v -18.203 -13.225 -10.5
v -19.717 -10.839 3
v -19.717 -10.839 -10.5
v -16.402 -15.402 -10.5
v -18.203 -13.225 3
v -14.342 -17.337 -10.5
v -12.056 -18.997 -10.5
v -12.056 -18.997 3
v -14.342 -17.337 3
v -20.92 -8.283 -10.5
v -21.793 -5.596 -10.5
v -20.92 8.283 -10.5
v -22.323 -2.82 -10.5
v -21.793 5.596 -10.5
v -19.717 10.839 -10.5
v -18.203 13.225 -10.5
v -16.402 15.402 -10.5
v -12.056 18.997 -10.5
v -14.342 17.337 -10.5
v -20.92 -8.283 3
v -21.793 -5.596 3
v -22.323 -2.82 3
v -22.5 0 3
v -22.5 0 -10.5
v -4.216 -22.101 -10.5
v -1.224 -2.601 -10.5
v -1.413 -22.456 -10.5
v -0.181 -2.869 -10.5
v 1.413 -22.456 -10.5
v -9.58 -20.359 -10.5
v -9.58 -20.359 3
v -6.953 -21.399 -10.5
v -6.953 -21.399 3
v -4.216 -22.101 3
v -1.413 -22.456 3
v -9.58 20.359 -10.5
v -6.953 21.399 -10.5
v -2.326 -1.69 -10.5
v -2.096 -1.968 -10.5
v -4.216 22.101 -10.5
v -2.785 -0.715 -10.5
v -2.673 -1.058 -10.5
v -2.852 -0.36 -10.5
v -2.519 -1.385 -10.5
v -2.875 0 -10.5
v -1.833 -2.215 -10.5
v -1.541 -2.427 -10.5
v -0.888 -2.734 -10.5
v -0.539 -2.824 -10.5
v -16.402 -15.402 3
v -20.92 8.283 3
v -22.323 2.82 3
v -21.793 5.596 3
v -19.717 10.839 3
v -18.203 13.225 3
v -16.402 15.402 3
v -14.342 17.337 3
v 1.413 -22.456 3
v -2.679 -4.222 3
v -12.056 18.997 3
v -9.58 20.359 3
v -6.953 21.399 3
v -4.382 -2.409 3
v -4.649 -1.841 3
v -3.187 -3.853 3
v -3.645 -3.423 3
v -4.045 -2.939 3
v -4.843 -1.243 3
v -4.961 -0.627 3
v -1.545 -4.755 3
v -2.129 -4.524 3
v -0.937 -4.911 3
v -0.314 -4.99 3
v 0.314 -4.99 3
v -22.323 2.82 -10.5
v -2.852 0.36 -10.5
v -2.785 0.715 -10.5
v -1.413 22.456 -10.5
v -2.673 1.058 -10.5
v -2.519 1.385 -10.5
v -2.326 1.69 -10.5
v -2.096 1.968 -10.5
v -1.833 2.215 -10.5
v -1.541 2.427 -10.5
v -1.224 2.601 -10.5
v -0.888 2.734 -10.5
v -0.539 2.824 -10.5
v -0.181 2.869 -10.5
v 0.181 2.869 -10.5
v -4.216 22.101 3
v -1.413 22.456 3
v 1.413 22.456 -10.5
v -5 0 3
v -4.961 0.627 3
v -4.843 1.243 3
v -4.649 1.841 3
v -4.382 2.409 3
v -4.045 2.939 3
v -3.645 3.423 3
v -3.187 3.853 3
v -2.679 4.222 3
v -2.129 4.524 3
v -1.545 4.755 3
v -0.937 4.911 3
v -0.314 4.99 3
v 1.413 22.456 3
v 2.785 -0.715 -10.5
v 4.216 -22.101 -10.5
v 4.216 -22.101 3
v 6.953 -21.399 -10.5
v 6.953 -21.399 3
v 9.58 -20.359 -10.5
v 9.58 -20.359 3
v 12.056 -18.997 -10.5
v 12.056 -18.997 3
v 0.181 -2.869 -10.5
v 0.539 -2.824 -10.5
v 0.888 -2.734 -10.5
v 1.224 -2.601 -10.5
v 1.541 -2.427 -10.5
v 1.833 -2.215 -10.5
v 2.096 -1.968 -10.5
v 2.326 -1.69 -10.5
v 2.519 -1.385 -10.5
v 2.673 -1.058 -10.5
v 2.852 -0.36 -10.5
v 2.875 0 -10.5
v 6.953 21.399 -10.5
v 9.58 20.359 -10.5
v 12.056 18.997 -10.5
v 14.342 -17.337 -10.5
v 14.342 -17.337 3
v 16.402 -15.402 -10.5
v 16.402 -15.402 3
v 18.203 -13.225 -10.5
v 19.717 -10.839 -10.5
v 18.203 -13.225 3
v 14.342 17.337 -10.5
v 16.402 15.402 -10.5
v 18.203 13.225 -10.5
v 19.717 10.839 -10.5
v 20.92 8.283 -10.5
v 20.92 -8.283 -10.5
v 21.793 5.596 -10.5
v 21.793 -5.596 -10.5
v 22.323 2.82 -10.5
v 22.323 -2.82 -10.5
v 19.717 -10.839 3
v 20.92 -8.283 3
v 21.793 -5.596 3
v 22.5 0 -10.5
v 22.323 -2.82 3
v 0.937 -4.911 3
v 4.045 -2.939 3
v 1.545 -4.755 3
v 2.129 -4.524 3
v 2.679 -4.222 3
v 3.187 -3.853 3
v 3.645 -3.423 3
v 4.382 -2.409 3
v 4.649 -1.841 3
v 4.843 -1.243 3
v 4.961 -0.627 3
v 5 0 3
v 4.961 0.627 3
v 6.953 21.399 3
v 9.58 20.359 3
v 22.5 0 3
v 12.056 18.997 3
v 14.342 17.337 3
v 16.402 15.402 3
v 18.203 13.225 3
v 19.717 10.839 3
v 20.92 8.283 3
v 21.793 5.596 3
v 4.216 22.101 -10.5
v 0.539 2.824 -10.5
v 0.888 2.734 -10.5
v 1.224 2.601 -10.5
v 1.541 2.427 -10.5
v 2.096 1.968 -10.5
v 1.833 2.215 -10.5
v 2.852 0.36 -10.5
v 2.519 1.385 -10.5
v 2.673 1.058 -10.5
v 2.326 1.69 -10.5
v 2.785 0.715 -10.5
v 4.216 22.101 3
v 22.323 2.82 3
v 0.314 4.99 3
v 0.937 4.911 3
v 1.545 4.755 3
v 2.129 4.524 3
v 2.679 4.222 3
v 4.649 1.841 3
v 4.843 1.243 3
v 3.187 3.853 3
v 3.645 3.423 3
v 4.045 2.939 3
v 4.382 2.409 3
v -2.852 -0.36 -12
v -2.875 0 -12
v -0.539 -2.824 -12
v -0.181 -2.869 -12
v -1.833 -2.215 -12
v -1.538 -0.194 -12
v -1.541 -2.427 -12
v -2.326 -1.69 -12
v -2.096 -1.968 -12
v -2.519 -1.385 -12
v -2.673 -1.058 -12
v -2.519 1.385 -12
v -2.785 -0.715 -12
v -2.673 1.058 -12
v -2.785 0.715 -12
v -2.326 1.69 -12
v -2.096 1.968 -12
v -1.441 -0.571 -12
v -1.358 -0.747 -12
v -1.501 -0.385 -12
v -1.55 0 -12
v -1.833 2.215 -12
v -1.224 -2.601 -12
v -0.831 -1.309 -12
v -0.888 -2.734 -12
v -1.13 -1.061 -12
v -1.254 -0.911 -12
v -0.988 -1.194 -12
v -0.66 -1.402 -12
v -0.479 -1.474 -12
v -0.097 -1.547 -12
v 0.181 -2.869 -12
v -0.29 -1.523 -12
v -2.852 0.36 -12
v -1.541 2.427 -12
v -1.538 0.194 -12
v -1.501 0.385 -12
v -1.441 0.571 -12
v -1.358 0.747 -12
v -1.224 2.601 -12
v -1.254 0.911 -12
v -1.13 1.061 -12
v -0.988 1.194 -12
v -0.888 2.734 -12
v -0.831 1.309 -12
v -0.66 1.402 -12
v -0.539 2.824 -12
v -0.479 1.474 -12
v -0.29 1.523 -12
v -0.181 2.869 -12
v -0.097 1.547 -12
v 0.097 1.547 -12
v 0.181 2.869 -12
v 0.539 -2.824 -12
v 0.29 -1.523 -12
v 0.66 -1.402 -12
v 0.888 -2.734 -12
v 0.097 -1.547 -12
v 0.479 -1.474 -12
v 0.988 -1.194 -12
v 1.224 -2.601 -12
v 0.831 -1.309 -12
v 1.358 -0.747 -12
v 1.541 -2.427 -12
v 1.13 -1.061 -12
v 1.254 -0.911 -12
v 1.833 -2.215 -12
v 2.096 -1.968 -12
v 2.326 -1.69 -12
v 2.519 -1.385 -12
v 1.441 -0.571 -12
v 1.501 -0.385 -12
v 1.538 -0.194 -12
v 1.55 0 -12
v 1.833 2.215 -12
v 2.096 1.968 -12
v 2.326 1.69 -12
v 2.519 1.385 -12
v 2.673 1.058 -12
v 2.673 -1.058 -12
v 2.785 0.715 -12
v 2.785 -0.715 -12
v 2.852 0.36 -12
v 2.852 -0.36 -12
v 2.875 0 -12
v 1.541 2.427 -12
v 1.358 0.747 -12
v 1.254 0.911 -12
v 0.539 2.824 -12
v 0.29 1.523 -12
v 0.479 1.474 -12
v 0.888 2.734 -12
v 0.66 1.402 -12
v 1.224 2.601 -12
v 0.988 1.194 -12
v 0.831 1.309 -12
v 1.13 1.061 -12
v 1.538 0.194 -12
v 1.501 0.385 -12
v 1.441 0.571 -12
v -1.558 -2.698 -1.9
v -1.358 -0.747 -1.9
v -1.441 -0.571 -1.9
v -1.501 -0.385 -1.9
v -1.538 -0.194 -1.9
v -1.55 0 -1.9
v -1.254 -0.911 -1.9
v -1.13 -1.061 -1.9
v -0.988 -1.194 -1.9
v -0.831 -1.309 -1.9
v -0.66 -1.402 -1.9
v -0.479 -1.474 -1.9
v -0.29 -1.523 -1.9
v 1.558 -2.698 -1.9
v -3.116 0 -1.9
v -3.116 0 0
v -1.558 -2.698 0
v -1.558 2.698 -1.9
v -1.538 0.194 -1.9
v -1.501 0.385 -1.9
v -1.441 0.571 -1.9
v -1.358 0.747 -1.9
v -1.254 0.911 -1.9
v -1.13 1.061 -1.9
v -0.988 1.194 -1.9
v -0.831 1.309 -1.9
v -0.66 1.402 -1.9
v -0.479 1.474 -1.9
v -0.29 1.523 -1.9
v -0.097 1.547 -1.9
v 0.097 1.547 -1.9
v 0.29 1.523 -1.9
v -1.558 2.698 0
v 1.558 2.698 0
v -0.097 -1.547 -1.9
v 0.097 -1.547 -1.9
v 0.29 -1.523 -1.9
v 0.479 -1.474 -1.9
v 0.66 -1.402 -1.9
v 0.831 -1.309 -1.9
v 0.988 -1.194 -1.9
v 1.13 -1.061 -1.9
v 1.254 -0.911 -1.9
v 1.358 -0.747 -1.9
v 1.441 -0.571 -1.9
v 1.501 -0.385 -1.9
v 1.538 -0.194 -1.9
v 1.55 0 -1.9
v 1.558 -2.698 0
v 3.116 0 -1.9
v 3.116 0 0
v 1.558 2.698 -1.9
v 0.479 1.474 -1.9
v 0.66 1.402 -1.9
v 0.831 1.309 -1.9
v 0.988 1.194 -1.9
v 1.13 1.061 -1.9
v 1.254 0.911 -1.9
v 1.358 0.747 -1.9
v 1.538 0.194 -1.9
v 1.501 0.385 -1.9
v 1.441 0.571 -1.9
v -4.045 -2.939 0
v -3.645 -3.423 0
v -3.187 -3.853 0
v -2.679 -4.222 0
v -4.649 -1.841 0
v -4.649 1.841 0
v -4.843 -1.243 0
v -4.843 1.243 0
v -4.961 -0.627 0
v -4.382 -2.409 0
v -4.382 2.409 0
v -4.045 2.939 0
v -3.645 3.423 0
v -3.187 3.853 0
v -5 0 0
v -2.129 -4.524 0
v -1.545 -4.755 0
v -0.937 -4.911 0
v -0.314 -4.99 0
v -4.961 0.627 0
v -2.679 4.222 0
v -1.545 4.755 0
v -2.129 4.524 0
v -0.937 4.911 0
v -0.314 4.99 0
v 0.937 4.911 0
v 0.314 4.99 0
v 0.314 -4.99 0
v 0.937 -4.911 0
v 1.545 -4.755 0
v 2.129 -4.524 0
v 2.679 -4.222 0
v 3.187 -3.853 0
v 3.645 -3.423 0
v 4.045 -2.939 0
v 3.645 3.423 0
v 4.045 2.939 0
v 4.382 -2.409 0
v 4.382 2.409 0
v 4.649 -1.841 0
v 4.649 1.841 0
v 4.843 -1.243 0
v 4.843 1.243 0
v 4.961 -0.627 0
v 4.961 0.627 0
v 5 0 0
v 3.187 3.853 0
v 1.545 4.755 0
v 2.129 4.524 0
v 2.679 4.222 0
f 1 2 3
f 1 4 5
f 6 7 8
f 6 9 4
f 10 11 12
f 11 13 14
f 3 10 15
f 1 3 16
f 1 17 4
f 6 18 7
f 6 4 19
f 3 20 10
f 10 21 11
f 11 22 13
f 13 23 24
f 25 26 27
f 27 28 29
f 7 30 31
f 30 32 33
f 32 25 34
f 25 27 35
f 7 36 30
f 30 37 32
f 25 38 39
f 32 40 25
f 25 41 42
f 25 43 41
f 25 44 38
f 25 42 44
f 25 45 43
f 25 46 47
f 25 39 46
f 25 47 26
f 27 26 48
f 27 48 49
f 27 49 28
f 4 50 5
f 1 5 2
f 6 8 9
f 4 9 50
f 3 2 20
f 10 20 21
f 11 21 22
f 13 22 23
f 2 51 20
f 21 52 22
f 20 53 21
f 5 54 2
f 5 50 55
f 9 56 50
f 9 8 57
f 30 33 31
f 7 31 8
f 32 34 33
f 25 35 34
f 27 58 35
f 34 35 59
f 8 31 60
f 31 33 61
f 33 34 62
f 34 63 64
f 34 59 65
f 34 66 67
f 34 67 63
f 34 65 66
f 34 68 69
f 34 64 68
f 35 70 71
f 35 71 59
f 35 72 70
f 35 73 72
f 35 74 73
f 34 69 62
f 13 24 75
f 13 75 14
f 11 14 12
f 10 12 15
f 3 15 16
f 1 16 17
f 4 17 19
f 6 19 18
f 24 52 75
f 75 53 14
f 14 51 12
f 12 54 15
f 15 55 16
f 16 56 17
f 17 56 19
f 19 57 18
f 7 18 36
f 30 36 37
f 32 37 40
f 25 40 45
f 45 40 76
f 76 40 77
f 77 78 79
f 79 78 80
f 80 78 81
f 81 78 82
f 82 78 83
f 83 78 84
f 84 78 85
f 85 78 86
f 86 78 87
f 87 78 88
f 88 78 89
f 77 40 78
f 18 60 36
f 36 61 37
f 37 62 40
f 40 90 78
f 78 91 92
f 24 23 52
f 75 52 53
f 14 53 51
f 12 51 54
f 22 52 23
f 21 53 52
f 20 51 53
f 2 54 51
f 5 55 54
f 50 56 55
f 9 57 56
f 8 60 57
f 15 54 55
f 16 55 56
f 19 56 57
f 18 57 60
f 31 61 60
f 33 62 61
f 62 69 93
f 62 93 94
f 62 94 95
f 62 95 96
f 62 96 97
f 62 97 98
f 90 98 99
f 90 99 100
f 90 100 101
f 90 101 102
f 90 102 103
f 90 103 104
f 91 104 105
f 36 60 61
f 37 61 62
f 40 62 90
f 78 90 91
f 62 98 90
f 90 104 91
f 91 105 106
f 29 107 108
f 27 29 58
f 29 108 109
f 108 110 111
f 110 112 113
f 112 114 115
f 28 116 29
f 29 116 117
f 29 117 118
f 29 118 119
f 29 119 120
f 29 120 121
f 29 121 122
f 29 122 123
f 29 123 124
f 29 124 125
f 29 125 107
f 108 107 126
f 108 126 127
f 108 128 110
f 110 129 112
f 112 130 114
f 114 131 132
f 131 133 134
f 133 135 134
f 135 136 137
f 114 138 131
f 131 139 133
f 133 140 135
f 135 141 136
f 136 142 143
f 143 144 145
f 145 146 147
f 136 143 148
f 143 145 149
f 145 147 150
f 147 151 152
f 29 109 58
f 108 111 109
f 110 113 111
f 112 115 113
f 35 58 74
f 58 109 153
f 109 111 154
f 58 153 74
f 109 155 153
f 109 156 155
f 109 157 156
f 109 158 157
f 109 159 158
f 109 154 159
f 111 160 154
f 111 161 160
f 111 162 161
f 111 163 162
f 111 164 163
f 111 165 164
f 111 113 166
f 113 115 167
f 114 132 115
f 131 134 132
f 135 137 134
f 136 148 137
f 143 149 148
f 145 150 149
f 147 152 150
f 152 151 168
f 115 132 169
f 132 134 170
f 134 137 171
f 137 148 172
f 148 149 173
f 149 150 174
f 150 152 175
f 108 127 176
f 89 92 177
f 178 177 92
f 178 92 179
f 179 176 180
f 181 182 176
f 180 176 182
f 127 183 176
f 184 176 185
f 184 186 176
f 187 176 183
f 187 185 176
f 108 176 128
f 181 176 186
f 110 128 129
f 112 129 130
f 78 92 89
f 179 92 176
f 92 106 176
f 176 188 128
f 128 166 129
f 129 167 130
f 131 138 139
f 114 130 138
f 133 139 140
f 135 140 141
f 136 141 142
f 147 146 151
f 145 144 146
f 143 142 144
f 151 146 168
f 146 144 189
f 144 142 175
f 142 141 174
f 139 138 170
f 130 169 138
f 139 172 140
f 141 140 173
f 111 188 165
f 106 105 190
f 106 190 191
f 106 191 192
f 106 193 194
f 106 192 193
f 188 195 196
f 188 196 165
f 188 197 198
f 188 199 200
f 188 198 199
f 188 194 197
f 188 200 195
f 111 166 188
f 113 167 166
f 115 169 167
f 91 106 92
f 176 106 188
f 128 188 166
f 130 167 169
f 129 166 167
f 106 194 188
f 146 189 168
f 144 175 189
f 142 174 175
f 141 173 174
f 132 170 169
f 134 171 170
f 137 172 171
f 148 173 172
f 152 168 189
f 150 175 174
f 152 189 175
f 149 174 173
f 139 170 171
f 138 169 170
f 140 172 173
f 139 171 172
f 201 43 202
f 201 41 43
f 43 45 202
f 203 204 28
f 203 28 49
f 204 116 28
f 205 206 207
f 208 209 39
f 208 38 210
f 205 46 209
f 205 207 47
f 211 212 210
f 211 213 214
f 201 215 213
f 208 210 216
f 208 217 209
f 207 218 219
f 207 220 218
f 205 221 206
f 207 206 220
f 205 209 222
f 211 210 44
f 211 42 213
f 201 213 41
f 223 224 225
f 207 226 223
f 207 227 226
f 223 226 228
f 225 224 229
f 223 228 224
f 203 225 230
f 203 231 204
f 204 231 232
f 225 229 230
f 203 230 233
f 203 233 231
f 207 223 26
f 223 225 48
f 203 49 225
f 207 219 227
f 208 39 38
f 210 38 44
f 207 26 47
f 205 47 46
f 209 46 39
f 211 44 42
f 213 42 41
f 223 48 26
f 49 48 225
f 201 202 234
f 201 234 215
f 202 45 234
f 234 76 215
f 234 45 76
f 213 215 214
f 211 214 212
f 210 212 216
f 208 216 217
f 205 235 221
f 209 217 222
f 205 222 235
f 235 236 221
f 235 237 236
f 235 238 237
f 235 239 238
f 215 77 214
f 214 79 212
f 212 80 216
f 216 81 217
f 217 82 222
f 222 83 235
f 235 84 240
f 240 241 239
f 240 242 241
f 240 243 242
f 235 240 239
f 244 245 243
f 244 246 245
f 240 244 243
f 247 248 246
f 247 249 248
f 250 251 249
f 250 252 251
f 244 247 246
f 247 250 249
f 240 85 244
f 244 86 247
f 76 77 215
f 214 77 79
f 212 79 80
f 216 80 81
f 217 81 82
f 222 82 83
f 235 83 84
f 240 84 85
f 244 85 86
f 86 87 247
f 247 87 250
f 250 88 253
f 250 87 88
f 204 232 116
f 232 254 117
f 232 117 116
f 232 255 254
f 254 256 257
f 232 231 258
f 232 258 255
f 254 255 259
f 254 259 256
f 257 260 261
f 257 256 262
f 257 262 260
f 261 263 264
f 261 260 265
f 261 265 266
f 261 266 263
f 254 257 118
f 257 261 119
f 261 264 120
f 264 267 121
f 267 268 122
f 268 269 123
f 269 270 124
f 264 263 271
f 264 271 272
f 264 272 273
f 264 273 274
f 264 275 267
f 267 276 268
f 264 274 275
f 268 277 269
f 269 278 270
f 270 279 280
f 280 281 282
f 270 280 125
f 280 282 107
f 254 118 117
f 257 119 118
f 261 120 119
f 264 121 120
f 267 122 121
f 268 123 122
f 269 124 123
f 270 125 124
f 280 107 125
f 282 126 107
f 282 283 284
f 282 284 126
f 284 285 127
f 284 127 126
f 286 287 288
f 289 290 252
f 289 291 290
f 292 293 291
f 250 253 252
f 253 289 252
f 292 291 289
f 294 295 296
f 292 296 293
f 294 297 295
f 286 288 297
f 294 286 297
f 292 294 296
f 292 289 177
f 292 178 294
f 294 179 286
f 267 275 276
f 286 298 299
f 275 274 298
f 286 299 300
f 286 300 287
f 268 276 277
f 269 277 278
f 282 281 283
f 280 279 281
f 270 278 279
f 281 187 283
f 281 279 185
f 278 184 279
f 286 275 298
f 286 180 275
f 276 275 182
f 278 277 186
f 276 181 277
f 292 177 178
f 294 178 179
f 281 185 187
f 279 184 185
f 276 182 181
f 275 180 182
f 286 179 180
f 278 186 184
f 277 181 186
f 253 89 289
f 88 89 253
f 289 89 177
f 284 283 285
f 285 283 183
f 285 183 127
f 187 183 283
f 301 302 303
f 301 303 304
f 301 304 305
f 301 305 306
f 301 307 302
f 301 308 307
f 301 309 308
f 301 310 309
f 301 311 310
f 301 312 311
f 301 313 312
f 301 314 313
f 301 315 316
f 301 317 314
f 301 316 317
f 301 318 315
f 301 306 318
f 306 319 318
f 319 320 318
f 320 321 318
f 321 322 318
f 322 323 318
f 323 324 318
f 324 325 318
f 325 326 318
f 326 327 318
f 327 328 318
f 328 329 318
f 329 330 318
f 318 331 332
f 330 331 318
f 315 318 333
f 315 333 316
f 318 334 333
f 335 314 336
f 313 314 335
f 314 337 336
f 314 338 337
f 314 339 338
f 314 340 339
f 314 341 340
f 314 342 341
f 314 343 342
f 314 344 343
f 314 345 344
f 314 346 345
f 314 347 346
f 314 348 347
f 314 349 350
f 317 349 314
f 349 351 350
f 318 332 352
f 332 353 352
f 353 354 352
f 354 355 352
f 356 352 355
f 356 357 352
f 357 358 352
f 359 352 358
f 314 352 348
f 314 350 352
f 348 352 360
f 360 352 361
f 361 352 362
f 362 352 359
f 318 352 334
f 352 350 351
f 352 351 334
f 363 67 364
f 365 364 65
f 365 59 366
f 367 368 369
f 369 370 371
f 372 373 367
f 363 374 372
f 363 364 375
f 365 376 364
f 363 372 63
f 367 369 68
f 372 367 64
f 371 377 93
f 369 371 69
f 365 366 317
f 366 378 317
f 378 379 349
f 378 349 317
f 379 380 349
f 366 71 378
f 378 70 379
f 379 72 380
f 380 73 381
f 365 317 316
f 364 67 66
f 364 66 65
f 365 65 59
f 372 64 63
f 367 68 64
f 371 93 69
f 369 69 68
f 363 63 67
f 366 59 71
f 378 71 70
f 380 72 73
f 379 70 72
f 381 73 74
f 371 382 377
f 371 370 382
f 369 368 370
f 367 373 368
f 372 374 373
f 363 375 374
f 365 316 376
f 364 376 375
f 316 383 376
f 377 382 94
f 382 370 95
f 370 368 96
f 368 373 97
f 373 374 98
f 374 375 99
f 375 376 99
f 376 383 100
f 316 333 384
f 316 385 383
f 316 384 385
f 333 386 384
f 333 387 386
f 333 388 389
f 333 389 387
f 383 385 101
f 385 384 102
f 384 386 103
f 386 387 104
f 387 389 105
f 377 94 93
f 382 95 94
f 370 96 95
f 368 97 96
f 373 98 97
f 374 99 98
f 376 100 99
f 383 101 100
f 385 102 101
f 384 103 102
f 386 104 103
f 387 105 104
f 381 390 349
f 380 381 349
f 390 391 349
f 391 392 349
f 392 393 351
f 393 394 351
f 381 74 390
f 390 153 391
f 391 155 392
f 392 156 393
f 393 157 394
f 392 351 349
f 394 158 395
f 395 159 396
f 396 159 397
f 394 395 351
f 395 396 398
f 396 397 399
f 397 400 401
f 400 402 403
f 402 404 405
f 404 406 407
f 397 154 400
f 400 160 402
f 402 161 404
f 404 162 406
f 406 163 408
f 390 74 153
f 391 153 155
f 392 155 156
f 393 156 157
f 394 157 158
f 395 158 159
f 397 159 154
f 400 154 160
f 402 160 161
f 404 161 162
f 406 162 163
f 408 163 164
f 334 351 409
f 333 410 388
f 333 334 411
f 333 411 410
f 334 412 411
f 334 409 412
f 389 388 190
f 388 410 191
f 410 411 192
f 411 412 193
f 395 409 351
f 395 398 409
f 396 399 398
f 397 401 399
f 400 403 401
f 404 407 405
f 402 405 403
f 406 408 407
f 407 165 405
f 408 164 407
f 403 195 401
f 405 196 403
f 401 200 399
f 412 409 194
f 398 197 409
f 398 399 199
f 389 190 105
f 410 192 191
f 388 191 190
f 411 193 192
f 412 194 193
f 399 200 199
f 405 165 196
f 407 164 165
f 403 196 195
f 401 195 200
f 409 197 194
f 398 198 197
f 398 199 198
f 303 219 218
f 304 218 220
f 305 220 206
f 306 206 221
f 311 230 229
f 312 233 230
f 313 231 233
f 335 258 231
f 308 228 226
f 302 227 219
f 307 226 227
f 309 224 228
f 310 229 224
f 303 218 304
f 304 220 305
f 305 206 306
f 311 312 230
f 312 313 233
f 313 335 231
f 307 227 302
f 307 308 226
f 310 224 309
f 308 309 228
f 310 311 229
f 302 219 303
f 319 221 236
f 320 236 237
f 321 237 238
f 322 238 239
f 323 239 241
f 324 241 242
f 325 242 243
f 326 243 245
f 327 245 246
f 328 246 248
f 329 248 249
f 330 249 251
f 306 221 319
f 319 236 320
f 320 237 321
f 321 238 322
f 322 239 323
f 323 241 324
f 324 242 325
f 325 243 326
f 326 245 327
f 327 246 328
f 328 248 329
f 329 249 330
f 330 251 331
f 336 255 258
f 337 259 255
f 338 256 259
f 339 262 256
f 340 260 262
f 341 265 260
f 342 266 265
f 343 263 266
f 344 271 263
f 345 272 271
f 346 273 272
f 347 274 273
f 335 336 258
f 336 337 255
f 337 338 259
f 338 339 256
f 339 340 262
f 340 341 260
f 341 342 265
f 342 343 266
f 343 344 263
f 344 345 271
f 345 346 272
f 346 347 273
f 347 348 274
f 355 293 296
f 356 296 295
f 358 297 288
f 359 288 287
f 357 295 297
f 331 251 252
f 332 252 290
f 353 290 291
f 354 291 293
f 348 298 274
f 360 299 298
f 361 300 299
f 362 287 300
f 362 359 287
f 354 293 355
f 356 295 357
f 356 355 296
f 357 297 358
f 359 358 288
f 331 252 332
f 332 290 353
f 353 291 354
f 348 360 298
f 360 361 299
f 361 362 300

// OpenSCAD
$fn = 50;

difference() {
	union() {
		translate(v = [0, 0, -10.5]) {
			cylinder(h = 13.5, r = 22.5);
		}
		#translate(v = [0, 0, -12.0]) {
			cylinder(h = 12, r = 2.875);
		}
	}
	union() {
		translate(v = [0, 0, 0]) {
			rotate(a = [0, 0, 0]) {
				difference() {
					union() {
						translate(v = [0, 0, -1.9]) {
							linear_extrude(height = 1.9) {
								polygon(points = [[3.1158, 0.0], [1.5579000000000005, 2.698361953111554], [-1.5578999999999994, 2.6983619531115544], [-3.1158, 3.815754496783323e-16], [-1.5579000000000014, -2.6983619531115535], [1.557899999999998, -2.6983619531115552]]);
							}
						}
					}
					union();
				}
			}
		}
		#cylinder(h = 3, r = 5.0);
		#translate(v = [0, 0, -100.0]) {
			cylinder(h = 200, r = 1.55);
		}
	}
}
